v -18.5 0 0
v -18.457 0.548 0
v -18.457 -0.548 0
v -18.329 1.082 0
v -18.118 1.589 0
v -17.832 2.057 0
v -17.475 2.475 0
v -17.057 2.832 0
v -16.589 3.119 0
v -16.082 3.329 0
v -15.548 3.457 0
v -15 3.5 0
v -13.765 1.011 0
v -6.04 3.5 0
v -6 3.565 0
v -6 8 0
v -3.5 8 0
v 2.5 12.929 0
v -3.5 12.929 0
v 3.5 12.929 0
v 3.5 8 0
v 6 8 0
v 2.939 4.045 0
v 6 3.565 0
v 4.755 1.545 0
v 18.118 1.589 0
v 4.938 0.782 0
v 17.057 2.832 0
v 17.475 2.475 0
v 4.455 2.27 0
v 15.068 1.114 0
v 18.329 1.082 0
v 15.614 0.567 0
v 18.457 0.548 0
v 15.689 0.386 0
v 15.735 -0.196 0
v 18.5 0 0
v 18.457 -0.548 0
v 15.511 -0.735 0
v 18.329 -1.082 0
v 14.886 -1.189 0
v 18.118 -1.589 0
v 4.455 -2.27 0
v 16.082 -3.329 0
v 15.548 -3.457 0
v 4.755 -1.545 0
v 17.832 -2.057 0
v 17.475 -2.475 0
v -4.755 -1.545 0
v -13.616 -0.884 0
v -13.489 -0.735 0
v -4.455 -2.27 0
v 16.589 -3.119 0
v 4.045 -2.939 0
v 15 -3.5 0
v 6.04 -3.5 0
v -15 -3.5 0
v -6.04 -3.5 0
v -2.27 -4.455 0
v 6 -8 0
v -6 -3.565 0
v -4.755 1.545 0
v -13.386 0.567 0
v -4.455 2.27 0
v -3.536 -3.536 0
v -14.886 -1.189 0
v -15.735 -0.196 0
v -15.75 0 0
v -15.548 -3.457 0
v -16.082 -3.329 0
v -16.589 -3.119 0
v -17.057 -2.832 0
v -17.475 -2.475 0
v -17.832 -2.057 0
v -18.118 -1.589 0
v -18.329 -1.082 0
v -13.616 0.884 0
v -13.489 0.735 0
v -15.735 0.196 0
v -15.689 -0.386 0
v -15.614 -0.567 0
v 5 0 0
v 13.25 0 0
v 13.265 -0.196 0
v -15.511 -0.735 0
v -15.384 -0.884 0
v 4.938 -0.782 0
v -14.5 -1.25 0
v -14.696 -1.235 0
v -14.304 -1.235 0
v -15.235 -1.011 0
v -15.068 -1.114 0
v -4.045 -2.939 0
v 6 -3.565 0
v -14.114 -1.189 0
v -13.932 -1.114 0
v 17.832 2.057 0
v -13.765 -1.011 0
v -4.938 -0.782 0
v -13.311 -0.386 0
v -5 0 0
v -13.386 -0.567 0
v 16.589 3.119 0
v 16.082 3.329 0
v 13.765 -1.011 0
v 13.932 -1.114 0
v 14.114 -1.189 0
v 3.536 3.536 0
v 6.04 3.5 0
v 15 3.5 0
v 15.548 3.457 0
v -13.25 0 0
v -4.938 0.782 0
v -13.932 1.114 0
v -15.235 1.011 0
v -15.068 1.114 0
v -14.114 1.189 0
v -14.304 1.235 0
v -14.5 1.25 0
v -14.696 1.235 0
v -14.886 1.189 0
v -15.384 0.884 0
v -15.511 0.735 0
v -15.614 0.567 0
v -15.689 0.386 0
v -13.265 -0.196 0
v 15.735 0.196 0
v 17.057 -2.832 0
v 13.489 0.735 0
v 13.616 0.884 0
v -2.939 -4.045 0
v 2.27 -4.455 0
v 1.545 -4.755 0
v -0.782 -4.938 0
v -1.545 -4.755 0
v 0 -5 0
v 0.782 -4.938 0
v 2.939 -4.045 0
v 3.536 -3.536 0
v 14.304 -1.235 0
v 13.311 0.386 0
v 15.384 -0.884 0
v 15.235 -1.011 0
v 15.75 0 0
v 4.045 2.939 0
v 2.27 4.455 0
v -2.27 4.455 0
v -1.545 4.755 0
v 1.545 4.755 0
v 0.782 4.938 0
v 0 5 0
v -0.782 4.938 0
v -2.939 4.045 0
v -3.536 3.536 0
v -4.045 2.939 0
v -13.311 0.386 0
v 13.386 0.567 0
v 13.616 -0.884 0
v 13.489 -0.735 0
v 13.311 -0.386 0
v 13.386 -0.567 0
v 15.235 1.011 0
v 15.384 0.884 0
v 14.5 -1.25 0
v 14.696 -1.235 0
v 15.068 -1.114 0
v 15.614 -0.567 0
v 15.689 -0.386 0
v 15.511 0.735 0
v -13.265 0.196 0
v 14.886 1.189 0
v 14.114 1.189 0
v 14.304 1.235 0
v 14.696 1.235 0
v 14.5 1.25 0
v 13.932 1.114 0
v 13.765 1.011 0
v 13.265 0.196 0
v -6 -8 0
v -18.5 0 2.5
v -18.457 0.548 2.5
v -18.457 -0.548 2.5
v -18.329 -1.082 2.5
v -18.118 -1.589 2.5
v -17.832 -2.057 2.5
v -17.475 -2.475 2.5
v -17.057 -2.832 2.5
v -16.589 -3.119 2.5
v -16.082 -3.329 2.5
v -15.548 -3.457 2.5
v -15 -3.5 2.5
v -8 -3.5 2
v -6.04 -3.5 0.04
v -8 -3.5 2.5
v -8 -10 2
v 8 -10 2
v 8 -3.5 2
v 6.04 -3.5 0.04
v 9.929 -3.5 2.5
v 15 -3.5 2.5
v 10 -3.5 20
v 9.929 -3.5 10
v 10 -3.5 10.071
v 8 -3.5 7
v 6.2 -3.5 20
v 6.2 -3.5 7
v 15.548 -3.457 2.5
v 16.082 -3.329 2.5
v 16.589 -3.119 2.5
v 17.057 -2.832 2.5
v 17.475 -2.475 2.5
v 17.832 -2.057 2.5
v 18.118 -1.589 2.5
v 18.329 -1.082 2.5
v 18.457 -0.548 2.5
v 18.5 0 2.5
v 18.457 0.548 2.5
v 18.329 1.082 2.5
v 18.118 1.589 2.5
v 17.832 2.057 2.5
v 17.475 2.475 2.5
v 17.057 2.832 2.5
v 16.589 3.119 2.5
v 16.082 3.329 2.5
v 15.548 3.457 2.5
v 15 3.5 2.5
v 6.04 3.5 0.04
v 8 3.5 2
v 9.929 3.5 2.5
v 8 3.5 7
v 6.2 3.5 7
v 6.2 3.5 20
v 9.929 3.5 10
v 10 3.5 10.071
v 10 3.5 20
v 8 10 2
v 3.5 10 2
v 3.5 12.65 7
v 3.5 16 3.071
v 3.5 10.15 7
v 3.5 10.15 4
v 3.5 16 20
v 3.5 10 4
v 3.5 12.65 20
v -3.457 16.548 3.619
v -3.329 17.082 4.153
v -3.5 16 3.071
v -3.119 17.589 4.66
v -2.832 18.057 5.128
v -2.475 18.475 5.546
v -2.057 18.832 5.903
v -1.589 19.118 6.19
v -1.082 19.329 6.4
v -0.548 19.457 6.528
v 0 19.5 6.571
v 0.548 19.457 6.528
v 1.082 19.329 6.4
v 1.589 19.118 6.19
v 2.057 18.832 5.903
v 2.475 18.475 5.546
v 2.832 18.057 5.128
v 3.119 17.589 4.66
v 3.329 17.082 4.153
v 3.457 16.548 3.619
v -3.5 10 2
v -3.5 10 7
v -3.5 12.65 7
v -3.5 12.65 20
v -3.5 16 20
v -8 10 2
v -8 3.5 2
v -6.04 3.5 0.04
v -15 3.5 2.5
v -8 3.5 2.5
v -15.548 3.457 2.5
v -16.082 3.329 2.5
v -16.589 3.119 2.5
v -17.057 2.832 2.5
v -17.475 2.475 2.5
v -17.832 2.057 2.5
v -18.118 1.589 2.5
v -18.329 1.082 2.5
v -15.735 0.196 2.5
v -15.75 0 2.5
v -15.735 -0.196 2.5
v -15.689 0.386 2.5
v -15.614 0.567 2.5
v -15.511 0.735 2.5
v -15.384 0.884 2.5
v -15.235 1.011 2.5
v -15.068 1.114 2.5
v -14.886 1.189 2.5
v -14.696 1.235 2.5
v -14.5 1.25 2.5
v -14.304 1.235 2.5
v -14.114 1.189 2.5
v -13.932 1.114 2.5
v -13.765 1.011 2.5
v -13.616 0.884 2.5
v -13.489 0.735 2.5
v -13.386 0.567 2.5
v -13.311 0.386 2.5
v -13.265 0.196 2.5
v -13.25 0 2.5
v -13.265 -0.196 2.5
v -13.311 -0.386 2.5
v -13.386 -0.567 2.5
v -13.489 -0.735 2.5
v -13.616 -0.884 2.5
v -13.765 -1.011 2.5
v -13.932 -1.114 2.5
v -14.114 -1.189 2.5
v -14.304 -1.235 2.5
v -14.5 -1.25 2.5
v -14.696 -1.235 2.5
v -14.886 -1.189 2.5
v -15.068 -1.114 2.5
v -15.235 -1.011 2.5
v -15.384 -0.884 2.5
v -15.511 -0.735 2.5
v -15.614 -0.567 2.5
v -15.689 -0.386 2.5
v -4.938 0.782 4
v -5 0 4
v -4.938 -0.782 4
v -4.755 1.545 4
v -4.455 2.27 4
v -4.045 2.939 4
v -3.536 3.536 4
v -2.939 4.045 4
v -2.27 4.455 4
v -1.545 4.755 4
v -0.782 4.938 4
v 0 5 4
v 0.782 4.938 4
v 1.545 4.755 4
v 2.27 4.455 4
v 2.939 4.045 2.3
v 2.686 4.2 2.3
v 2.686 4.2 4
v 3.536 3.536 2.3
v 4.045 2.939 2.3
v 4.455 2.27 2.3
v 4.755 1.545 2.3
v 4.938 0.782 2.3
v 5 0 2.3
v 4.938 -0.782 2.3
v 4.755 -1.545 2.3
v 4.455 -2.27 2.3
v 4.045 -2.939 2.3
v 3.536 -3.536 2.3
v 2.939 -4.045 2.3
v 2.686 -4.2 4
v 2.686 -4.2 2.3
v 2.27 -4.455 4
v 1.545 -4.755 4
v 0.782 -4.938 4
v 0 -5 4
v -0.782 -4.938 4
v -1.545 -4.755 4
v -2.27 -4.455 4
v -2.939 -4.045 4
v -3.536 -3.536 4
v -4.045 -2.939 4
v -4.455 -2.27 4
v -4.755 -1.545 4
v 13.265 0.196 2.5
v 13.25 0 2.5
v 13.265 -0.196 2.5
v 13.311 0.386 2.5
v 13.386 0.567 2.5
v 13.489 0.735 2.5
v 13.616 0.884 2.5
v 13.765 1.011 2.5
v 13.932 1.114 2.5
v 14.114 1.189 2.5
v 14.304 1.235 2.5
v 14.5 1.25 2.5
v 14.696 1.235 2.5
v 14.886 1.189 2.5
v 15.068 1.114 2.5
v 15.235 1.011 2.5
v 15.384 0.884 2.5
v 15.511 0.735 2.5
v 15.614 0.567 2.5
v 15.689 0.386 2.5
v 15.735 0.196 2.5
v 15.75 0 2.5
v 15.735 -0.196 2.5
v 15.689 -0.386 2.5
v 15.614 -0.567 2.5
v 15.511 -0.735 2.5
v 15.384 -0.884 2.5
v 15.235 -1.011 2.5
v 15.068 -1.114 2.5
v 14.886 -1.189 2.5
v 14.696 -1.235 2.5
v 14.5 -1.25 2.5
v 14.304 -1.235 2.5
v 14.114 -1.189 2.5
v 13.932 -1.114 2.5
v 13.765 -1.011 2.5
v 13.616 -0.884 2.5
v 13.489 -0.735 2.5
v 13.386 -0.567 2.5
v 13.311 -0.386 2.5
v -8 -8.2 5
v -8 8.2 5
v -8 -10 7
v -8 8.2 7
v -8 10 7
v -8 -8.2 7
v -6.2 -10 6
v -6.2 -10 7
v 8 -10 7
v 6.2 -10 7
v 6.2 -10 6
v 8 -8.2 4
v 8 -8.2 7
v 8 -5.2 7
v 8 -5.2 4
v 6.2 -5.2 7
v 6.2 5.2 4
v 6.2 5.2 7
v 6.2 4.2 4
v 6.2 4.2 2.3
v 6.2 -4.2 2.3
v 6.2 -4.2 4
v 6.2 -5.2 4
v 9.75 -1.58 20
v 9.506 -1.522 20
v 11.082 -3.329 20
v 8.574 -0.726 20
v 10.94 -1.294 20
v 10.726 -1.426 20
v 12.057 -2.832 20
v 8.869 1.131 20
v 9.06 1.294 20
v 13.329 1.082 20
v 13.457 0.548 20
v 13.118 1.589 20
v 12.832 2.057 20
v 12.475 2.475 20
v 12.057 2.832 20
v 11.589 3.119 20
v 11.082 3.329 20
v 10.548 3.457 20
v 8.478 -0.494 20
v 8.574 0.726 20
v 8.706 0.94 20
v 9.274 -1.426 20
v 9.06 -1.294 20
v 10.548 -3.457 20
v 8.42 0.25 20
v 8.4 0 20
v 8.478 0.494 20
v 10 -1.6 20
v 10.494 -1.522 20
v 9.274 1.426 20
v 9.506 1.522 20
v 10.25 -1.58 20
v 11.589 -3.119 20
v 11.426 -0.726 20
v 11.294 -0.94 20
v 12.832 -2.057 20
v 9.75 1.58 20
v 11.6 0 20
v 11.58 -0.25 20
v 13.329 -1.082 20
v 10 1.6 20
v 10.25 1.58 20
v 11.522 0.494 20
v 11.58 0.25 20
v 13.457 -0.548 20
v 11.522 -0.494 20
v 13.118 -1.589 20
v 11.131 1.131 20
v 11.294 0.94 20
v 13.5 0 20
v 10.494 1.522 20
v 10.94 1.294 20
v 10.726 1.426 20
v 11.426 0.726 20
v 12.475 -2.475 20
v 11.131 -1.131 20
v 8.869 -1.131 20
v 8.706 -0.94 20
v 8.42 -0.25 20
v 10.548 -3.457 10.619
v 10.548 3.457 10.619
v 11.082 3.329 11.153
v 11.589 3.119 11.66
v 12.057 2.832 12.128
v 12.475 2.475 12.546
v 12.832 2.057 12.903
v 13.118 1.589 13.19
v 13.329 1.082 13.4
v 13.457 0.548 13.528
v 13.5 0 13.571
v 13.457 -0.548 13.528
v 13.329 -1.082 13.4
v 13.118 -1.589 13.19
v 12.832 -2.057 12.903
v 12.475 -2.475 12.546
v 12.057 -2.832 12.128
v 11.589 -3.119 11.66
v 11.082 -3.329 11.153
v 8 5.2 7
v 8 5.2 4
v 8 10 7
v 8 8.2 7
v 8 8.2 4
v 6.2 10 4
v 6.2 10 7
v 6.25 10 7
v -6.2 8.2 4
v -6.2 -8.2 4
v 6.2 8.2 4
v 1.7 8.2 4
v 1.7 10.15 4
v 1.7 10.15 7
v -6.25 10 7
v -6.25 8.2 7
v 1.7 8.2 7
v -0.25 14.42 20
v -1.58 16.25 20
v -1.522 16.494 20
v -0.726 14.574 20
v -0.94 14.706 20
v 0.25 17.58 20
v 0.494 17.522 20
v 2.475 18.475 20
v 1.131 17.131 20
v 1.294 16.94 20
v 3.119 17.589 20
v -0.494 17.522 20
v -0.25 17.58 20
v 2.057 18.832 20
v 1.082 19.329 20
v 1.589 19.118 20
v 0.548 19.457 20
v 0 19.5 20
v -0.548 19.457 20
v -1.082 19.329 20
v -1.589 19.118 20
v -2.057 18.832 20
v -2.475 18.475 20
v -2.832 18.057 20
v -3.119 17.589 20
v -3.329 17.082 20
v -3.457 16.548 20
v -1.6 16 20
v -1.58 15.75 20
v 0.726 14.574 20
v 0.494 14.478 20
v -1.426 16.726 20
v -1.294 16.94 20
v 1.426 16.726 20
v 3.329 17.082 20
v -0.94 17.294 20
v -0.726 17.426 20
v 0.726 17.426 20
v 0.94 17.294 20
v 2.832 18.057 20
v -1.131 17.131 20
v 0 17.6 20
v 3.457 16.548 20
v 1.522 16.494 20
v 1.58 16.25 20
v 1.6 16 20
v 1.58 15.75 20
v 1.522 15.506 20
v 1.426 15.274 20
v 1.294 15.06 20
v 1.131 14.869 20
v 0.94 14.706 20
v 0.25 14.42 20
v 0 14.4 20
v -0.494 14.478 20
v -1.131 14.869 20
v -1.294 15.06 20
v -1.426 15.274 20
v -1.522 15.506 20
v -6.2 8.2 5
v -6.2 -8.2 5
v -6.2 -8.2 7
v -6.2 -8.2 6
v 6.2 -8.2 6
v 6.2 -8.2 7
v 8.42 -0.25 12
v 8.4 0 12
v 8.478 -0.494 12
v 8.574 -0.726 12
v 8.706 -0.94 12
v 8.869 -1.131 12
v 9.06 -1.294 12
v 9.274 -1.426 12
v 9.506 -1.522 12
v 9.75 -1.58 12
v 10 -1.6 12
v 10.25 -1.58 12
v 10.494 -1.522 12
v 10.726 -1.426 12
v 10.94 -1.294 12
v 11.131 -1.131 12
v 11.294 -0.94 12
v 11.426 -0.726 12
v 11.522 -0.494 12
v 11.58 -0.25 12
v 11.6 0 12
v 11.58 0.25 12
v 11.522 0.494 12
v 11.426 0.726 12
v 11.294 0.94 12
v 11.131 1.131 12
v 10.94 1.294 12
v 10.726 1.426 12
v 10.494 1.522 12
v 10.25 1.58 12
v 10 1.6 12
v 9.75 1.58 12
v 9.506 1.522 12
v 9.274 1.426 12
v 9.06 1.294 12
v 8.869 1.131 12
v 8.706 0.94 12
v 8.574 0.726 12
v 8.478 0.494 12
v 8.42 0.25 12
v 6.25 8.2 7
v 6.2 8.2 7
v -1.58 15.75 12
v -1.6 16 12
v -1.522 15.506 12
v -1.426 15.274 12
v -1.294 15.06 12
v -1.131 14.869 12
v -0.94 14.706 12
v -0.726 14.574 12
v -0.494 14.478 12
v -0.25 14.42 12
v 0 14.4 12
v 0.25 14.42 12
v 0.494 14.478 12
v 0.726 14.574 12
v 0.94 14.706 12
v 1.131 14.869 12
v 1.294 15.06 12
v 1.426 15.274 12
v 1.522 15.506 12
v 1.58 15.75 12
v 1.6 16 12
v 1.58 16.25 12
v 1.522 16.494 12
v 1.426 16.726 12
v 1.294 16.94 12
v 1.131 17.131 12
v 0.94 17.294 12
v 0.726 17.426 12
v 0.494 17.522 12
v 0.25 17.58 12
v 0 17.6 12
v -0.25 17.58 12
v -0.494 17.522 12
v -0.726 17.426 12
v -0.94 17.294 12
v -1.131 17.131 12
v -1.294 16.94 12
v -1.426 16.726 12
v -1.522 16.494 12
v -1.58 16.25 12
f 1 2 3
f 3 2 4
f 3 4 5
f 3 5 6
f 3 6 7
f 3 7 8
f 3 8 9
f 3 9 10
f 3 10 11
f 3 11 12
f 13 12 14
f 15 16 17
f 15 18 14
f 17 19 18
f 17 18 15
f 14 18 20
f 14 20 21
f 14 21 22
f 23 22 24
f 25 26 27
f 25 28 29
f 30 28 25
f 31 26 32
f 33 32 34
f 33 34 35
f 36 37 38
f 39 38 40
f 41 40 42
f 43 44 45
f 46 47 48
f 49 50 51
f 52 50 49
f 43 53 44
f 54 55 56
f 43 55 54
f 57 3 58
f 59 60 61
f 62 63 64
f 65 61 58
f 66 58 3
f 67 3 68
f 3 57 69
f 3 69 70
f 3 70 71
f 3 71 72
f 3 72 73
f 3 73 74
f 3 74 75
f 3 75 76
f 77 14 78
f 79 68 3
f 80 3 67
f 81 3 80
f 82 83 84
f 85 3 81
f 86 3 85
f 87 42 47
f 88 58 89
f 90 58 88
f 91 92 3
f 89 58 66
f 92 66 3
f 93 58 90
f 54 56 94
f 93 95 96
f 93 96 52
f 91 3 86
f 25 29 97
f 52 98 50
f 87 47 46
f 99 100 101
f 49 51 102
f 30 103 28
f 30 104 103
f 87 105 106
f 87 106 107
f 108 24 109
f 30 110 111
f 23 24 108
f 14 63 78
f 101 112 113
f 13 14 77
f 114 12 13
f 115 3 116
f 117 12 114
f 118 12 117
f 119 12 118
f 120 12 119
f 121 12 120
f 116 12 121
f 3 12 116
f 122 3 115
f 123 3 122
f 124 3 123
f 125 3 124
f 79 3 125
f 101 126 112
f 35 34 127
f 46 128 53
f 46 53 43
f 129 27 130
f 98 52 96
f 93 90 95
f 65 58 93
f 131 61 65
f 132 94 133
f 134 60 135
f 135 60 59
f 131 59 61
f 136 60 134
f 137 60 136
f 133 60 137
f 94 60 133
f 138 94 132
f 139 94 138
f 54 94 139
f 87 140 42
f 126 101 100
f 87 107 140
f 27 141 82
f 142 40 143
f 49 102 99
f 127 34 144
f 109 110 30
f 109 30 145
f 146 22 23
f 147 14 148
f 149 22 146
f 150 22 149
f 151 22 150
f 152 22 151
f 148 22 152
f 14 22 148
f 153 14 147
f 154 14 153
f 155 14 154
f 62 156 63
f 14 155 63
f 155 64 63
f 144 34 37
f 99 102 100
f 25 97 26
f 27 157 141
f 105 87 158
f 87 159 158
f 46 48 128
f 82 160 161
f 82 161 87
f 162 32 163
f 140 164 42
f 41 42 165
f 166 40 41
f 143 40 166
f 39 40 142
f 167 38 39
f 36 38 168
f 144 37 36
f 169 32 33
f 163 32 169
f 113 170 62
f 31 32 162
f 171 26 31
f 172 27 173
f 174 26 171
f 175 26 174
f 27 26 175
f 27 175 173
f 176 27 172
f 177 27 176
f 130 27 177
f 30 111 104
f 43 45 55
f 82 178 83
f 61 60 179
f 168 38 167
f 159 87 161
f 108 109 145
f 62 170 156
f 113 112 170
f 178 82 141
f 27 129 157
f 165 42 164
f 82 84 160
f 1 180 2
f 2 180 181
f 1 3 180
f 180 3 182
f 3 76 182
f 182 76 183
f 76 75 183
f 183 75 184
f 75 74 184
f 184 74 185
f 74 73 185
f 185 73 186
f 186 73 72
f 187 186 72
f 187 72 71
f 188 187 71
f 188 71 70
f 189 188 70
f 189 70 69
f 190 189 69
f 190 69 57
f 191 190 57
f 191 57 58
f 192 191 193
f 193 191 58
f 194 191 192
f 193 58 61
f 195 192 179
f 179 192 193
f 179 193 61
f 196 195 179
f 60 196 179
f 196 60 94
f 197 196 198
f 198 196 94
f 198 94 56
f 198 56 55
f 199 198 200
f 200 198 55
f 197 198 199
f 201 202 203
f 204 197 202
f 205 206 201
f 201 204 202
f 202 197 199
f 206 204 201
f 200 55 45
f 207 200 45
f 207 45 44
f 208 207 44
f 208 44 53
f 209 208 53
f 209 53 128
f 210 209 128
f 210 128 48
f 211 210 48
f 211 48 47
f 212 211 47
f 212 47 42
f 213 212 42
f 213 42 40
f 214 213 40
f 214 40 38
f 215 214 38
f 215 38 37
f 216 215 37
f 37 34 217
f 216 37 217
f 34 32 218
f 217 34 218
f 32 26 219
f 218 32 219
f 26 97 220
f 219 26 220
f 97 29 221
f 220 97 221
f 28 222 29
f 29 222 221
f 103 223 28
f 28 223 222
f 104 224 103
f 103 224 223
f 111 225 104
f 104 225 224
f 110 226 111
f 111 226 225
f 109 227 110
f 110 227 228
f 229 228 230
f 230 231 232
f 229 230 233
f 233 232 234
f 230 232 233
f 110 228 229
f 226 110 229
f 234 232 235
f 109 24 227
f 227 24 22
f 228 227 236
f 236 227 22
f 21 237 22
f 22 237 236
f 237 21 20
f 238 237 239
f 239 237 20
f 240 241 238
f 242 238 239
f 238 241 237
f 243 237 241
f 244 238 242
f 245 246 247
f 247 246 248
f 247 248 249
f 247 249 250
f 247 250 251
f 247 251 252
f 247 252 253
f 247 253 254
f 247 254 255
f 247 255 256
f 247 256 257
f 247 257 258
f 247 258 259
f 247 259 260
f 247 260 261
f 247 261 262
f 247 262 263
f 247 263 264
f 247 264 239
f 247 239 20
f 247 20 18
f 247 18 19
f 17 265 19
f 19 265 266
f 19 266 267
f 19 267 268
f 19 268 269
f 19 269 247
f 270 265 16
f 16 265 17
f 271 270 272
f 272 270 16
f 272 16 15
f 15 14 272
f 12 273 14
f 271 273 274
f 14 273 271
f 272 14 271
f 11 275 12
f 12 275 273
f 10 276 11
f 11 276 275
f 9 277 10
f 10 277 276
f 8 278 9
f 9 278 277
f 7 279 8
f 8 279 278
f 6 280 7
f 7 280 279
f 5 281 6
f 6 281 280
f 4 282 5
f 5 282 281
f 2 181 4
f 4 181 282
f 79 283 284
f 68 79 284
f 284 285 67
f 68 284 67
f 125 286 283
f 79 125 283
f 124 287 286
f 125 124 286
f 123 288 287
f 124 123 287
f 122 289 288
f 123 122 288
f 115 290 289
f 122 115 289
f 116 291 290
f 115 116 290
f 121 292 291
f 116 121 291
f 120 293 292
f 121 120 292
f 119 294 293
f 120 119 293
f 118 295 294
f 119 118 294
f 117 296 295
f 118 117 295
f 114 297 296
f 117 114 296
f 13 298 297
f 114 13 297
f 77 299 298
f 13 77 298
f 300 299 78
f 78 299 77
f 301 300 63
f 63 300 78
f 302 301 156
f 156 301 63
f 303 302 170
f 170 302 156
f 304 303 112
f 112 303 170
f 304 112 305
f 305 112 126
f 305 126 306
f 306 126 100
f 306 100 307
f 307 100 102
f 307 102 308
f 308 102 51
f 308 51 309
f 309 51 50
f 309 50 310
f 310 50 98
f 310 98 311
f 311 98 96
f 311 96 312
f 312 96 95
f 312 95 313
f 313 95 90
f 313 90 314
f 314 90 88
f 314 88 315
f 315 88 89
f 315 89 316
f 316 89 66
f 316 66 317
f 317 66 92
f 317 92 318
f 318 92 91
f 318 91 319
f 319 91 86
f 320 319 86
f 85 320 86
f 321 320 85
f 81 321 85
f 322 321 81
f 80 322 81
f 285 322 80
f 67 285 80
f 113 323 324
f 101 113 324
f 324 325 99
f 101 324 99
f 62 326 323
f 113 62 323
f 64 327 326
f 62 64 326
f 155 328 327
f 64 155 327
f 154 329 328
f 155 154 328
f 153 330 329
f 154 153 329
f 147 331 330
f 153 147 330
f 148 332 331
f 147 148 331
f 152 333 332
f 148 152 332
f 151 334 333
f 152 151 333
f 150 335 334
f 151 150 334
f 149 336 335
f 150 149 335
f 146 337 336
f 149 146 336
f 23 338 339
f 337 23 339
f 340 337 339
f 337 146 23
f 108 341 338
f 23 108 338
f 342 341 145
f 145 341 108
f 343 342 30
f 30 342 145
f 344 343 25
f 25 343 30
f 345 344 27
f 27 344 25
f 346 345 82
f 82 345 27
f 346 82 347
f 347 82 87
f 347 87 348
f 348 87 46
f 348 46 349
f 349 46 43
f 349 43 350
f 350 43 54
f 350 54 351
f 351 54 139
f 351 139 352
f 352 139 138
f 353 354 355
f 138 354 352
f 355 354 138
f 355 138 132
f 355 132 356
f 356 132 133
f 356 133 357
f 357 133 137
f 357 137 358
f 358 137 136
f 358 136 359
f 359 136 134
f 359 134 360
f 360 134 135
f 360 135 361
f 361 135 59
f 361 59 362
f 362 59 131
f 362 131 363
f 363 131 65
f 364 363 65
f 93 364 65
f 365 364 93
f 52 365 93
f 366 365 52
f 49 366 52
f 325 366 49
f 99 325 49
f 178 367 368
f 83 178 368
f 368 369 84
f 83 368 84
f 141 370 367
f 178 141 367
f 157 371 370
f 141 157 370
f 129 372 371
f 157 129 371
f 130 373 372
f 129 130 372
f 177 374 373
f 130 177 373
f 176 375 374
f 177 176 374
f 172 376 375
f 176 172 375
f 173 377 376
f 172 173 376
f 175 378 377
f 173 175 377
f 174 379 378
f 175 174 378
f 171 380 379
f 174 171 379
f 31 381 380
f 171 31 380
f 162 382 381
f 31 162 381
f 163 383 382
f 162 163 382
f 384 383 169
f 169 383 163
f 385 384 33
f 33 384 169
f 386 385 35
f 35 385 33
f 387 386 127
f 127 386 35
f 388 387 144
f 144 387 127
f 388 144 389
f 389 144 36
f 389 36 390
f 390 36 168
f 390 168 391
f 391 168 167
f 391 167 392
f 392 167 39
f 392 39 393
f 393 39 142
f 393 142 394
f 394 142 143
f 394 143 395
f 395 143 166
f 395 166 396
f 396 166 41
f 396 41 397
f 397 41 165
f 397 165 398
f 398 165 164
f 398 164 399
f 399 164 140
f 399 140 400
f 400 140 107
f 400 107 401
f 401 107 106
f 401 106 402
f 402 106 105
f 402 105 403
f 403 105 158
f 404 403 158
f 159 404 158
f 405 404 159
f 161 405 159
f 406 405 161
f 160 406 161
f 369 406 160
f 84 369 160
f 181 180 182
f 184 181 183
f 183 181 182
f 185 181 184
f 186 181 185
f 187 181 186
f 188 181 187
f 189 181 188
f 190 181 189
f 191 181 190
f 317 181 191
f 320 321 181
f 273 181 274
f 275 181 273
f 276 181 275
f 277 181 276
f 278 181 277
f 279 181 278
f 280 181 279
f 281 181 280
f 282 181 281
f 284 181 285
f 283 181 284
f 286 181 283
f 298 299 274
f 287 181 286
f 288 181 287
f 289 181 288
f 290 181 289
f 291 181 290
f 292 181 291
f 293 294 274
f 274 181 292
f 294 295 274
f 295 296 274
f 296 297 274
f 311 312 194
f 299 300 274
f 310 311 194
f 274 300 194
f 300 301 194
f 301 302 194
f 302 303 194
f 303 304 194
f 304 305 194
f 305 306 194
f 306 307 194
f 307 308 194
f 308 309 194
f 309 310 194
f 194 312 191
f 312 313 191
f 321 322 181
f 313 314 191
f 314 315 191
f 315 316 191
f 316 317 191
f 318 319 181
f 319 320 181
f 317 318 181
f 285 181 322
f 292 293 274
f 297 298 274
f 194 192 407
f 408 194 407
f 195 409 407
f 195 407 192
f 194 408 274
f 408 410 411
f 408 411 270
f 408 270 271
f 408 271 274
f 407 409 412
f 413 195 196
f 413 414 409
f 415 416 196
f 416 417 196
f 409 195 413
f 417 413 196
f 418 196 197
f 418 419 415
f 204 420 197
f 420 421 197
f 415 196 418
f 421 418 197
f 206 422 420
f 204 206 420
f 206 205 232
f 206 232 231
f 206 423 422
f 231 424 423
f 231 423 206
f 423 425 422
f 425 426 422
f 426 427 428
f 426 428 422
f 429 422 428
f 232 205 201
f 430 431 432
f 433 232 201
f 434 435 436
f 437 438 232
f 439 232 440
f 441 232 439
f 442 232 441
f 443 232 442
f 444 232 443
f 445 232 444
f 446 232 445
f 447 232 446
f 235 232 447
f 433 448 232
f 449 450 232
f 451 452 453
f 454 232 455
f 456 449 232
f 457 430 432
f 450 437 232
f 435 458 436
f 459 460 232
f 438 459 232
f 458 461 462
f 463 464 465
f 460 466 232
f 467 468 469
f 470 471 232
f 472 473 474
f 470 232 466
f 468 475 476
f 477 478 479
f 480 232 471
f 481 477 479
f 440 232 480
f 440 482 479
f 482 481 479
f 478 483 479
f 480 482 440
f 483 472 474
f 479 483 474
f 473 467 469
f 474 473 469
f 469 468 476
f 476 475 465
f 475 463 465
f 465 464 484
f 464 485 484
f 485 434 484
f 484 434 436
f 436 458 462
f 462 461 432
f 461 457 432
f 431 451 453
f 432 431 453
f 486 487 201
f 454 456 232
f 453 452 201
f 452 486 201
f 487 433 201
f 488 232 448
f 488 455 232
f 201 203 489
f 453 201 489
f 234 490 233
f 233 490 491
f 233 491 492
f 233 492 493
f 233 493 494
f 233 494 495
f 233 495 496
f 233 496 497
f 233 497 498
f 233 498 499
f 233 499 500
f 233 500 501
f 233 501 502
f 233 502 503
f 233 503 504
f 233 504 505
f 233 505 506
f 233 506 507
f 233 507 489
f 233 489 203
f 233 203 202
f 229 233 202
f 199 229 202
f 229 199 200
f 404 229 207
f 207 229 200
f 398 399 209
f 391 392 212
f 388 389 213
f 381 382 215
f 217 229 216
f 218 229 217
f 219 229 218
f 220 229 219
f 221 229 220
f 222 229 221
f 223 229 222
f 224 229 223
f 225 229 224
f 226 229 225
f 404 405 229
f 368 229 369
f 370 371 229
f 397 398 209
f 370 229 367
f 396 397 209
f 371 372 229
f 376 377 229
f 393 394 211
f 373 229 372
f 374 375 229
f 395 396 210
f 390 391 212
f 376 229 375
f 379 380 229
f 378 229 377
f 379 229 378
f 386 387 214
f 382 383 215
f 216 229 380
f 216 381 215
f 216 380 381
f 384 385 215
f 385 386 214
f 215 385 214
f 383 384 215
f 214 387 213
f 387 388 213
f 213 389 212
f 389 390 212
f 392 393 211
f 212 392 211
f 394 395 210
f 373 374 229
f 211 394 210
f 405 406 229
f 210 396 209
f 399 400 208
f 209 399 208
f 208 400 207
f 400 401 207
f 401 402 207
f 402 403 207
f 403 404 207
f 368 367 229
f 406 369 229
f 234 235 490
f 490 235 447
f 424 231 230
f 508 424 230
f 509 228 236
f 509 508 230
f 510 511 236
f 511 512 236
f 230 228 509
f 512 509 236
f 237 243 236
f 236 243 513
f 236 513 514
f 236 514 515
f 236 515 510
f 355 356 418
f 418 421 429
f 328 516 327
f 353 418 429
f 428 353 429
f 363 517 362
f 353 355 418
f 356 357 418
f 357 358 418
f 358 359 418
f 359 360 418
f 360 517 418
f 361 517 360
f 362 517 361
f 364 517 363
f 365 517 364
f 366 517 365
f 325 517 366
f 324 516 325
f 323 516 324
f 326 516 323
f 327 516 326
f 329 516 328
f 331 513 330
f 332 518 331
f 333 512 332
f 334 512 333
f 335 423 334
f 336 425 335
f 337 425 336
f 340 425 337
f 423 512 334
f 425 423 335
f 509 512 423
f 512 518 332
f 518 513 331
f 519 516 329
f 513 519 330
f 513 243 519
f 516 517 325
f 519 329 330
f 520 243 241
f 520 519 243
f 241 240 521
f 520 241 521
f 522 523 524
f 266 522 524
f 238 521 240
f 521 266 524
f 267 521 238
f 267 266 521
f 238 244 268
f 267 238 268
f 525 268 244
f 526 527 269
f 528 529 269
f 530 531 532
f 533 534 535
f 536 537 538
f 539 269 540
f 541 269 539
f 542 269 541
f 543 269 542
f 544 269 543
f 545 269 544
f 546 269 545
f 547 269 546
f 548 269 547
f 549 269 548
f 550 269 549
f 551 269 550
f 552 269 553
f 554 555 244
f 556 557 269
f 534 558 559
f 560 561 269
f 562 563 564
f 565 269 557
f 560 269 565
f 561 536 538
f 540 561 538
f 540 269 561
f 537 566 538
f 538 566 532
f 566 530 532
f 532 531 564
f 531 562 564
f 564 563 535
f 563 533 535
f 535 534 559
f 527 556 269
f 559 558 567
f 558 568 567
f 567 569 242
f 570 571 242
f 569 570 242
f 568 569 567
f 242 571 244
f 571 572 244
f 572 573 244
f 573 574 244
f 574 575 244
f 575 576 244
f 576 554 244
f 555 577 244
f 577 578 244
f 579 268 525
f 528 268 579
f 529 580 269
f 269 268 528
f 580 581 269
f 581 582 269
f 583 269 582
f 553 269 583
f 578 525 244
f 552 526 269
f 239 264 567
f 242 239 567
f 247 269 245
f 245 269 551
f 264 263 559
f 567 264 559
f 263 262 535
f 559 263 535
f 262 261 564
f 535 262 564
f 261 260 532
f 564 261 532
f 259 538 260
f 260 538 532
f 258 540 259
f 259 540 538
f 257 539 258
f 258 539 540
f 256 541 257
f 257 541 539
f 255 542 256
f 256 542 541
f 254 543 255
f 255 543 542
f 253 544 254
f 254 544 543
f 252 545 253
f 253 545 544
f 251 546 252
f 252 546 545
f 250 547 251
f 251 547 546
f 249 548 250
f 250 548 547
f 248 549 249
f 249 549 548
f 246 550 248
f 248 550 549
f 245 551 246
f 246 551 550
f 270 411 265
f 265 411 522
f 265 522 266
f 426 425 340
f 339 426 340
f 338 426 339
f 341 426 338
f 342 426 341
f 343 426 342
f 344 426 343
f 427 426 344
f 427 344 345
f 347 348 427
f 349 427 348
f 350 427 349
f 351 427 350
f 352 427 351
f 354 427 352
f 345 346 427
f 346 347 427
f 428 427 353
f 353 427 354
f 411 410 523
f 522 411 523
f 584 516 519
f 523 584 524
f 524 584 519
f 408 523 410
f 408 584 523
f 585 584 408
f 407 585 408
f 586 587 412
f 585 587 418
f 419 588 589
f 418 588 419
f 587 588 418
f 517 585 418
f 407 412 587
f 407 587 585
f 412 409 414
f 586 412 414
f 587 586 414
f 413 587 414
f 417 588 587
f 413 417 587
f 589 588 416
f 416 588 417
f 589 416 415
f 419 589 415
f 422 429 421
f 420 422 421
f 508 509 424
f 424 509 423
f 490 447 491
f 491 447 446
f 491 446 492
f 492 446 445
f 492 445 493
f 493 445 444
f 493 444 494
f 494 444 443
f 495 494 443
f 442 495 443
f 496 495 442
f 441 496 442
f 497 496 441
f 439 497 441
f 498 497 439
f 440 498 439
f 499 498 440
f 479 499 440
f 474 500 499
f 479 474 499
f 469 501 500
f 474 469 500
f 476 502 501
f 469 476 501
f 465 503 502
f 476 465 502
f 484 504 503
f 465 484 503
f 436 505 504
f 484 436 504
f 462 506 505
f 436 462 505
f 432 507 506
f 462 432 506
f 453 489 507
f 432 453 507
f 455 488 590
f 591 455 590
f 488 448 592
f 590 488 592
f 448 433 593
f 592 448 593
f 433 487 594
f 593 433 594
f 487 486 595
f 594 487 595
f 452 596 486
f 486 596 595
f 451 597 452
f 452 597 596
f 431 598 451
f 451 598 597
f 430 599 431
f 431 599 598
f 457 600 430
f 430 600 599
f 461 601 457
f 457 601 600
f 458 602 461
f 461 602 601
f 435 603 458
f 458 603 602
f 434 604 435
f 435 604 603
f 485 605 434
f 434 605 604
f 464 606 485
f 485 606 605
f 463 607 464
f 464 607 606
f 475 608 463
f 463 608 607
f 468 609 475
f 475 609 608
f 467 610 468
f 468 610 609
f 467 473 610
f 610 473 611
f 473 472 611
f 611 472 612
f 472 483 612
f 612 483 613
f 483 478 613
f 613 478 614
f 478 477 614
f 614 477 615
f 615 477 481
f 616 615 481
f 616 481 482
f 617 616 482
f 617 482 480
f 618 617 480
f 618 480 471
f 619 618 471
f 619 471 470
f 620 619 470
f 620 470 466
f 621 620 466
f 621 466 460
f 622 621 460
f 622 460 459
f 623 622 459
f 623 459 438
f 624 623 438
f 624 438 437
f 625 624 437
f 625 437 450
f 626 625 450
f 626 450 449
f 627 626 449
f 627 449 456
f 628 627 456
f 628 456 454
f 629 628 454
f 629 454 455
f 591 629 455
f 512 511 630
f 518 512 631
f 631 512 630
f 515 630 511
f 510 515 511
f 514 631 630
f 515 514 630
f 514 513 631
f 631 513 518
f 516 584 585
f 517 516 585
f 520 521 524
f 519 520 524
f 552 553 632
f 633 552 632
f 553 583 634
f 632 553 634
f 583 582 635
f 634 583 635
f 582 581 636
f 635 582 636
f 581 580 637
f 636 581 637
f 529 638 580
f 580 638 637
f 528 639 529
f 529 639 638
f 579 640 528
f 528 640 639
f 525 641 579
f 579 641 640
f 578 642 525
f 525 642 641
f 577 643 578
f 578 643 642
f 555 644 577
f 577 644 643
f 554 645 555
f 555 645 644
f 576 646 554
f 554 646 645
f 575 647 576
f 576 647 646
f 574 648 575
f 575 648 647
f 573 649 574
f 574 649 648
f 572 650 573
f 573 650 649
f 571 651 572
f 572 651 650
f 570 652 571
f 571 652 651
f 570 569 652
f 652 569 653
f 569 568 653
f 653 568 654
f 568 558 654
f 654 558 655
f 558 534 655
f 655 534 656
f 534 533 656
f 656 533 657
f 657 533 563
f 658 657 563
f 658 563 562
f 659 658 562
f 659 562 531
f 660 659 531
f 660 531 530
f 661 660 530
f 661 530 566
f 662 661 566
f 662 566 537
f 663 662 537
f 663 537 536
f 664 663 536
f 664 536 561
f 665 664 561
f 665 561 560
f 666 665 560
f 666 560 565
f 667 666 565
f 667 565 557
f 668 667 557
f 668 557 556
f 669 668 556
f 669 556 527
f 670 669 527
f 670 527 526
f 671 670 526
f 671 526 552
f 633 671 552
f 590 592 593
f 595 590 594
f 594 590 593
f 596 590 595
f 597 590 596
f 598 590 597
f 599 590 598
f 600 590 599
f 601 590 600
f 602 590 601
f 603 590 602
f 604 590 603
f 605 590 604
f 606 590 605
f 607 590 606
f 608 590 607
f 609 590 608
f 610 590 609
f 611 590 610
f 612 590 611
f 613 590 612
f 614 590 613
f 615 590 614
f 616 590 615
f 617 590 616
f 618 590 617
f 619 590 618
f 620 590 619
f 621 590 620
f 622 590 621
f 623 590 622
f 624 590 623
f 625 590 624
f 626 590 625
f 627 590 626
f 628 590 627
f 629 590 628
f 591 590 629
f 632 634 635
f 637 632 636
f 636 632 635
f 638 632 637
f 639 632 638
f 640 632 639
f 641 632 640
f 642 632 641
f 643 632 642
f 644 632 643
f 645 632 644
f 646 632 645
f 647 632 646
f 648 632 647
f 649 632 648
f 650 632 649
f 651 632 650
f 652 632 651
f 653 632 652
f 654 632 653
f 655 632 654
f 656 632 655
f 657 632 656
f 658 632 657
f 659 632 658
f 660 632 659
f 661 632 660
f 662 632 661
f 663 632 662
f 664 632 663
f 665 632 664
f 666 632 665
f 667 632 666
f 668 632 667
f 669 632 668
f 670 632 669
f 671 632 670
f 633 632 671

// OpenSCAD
$fn = 40;



difference() {
	union() {
		servoAdapter();
		thumbStickHousingBottom();	
	}
	
	translate([0,0,2.5+1.5]) thumbStick();
	translate([0,0,-1]) cylinder(h = 6, r=(10/2));	
}


module thumbStickHousingBottom() {
	hull() {
		translate([-16/2,-20/2,2])
		cube(size=[16,20,5]);

		translate([-12/2,-16/2,0])
		cube(size=[12,16,5]);	
	}

	difference() {
		union() {
			slit(10,3.5,16+2.5+1.5);
			rotate(a=[0,0,90]) slit(9+7,3.5,16+2.5+1.5);
		}

		translate([10,0,12]) cylinder(h = 10, r=3.2/2);

		translate([0,16,12]) cylinder(h = 10, r=3.2/2);
		

		translate([17,0,10])
		rotate(a=[-90,0,0])
		hull() {
			rotate(a=[0,0,45])
			cube(size=[10,10,10],center=true);

			translate([0,20,0])
			rotate(a=[0,0,45])
			cube(size=[10,10,10],center=true);	
		}	


		#translate([0,20,0])
		rotate(a=[-90,0,90])
		hull() {
			rotate(a=[0,0,45])
			cube(size=[10,10,10],center=true);

			translate([0,20,0])
			rotate(a=[0,0,45])
			cube(size=[10,10,10],center=true);	
		}	
	}
}

module thumbStick() {
	#union() {
		translate([0,0,8])
		cube(size=[12.4,16.4,16],center=true);

		translate([0,-4.2,-1.7])
		cube(size=[6.2,8.4,2]);

		translate([-6.2-5,-8.2,1])
		cube(size=[5,16.4,15]);

		translate([6.2-4.5,16.3/2,0])
		cube(size=[4.5,2,3]);

		translate([-12.5/2,16.3/2,3])
		cube(size=[12.5,4.5,13]);	

		// bottom pin
		#mirror([0,1,0])
		translate([12/2,16.4/2-3,0])
		cube(size=[10,3,16]);	

		translate([12/2,16.4/2-3,0])
		cube(size=[10,3,16]);	

		// pressbutton space
		translate([-12.4/2,-16.4/2-5,2])
		cube(size=[12.4,5,14]);
	}
}



module servoAdapter() {
	difference() {
		union() {
			hull() {
				translate([15,0,0]) cylinder(h = 2.5, r=3.5);
				translate([-15,0,0]) cylinder(h = 2.5, r=3.5);
			}
			translate([0,0,0]) cylinder(h = 2.5, r=(14/2));
		}
 		
		translate([0,0,0]) {
			union() {
				translate([29/2,0,-1]) cylinder(h = 6, r=(2.5/2));
				
				translate([-29/2,0,-1]) cylinder(h = 6, r=(2.5/2));	
			}
		}	
	}
}
	


module slit(length,radius,height) {
	hull() {
		translate([length,0,0]) cylinder(h = height, r=radius);
		translate([0,0,0]) cylinder(h = height, r=radius);
	}
}


	
